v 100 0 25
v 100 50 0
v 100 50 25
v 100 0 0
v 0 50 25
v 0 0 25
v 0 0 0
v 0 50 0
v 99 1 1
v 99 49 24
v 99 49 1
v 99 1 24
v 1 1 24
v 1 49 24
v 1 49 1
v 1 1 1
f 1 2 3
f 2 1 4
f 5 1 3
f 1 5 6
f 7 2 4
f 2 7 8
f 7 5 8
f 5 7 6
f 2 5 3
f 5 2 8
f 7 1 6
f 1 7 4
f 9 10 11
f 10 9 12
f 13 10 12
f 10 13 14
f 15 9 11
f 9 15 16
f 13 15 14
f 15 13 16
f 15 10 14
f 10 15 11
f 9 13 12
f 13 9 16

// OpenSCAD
// Box dimensions
box_width = 100;
box_depth = 50;
box_height = 25;

difference() {
  cube([box_width, box_depth, box_height]);
  translate([1,1,1])
  cube([box_width-2, box_depth-2, box_height-2]);
}
